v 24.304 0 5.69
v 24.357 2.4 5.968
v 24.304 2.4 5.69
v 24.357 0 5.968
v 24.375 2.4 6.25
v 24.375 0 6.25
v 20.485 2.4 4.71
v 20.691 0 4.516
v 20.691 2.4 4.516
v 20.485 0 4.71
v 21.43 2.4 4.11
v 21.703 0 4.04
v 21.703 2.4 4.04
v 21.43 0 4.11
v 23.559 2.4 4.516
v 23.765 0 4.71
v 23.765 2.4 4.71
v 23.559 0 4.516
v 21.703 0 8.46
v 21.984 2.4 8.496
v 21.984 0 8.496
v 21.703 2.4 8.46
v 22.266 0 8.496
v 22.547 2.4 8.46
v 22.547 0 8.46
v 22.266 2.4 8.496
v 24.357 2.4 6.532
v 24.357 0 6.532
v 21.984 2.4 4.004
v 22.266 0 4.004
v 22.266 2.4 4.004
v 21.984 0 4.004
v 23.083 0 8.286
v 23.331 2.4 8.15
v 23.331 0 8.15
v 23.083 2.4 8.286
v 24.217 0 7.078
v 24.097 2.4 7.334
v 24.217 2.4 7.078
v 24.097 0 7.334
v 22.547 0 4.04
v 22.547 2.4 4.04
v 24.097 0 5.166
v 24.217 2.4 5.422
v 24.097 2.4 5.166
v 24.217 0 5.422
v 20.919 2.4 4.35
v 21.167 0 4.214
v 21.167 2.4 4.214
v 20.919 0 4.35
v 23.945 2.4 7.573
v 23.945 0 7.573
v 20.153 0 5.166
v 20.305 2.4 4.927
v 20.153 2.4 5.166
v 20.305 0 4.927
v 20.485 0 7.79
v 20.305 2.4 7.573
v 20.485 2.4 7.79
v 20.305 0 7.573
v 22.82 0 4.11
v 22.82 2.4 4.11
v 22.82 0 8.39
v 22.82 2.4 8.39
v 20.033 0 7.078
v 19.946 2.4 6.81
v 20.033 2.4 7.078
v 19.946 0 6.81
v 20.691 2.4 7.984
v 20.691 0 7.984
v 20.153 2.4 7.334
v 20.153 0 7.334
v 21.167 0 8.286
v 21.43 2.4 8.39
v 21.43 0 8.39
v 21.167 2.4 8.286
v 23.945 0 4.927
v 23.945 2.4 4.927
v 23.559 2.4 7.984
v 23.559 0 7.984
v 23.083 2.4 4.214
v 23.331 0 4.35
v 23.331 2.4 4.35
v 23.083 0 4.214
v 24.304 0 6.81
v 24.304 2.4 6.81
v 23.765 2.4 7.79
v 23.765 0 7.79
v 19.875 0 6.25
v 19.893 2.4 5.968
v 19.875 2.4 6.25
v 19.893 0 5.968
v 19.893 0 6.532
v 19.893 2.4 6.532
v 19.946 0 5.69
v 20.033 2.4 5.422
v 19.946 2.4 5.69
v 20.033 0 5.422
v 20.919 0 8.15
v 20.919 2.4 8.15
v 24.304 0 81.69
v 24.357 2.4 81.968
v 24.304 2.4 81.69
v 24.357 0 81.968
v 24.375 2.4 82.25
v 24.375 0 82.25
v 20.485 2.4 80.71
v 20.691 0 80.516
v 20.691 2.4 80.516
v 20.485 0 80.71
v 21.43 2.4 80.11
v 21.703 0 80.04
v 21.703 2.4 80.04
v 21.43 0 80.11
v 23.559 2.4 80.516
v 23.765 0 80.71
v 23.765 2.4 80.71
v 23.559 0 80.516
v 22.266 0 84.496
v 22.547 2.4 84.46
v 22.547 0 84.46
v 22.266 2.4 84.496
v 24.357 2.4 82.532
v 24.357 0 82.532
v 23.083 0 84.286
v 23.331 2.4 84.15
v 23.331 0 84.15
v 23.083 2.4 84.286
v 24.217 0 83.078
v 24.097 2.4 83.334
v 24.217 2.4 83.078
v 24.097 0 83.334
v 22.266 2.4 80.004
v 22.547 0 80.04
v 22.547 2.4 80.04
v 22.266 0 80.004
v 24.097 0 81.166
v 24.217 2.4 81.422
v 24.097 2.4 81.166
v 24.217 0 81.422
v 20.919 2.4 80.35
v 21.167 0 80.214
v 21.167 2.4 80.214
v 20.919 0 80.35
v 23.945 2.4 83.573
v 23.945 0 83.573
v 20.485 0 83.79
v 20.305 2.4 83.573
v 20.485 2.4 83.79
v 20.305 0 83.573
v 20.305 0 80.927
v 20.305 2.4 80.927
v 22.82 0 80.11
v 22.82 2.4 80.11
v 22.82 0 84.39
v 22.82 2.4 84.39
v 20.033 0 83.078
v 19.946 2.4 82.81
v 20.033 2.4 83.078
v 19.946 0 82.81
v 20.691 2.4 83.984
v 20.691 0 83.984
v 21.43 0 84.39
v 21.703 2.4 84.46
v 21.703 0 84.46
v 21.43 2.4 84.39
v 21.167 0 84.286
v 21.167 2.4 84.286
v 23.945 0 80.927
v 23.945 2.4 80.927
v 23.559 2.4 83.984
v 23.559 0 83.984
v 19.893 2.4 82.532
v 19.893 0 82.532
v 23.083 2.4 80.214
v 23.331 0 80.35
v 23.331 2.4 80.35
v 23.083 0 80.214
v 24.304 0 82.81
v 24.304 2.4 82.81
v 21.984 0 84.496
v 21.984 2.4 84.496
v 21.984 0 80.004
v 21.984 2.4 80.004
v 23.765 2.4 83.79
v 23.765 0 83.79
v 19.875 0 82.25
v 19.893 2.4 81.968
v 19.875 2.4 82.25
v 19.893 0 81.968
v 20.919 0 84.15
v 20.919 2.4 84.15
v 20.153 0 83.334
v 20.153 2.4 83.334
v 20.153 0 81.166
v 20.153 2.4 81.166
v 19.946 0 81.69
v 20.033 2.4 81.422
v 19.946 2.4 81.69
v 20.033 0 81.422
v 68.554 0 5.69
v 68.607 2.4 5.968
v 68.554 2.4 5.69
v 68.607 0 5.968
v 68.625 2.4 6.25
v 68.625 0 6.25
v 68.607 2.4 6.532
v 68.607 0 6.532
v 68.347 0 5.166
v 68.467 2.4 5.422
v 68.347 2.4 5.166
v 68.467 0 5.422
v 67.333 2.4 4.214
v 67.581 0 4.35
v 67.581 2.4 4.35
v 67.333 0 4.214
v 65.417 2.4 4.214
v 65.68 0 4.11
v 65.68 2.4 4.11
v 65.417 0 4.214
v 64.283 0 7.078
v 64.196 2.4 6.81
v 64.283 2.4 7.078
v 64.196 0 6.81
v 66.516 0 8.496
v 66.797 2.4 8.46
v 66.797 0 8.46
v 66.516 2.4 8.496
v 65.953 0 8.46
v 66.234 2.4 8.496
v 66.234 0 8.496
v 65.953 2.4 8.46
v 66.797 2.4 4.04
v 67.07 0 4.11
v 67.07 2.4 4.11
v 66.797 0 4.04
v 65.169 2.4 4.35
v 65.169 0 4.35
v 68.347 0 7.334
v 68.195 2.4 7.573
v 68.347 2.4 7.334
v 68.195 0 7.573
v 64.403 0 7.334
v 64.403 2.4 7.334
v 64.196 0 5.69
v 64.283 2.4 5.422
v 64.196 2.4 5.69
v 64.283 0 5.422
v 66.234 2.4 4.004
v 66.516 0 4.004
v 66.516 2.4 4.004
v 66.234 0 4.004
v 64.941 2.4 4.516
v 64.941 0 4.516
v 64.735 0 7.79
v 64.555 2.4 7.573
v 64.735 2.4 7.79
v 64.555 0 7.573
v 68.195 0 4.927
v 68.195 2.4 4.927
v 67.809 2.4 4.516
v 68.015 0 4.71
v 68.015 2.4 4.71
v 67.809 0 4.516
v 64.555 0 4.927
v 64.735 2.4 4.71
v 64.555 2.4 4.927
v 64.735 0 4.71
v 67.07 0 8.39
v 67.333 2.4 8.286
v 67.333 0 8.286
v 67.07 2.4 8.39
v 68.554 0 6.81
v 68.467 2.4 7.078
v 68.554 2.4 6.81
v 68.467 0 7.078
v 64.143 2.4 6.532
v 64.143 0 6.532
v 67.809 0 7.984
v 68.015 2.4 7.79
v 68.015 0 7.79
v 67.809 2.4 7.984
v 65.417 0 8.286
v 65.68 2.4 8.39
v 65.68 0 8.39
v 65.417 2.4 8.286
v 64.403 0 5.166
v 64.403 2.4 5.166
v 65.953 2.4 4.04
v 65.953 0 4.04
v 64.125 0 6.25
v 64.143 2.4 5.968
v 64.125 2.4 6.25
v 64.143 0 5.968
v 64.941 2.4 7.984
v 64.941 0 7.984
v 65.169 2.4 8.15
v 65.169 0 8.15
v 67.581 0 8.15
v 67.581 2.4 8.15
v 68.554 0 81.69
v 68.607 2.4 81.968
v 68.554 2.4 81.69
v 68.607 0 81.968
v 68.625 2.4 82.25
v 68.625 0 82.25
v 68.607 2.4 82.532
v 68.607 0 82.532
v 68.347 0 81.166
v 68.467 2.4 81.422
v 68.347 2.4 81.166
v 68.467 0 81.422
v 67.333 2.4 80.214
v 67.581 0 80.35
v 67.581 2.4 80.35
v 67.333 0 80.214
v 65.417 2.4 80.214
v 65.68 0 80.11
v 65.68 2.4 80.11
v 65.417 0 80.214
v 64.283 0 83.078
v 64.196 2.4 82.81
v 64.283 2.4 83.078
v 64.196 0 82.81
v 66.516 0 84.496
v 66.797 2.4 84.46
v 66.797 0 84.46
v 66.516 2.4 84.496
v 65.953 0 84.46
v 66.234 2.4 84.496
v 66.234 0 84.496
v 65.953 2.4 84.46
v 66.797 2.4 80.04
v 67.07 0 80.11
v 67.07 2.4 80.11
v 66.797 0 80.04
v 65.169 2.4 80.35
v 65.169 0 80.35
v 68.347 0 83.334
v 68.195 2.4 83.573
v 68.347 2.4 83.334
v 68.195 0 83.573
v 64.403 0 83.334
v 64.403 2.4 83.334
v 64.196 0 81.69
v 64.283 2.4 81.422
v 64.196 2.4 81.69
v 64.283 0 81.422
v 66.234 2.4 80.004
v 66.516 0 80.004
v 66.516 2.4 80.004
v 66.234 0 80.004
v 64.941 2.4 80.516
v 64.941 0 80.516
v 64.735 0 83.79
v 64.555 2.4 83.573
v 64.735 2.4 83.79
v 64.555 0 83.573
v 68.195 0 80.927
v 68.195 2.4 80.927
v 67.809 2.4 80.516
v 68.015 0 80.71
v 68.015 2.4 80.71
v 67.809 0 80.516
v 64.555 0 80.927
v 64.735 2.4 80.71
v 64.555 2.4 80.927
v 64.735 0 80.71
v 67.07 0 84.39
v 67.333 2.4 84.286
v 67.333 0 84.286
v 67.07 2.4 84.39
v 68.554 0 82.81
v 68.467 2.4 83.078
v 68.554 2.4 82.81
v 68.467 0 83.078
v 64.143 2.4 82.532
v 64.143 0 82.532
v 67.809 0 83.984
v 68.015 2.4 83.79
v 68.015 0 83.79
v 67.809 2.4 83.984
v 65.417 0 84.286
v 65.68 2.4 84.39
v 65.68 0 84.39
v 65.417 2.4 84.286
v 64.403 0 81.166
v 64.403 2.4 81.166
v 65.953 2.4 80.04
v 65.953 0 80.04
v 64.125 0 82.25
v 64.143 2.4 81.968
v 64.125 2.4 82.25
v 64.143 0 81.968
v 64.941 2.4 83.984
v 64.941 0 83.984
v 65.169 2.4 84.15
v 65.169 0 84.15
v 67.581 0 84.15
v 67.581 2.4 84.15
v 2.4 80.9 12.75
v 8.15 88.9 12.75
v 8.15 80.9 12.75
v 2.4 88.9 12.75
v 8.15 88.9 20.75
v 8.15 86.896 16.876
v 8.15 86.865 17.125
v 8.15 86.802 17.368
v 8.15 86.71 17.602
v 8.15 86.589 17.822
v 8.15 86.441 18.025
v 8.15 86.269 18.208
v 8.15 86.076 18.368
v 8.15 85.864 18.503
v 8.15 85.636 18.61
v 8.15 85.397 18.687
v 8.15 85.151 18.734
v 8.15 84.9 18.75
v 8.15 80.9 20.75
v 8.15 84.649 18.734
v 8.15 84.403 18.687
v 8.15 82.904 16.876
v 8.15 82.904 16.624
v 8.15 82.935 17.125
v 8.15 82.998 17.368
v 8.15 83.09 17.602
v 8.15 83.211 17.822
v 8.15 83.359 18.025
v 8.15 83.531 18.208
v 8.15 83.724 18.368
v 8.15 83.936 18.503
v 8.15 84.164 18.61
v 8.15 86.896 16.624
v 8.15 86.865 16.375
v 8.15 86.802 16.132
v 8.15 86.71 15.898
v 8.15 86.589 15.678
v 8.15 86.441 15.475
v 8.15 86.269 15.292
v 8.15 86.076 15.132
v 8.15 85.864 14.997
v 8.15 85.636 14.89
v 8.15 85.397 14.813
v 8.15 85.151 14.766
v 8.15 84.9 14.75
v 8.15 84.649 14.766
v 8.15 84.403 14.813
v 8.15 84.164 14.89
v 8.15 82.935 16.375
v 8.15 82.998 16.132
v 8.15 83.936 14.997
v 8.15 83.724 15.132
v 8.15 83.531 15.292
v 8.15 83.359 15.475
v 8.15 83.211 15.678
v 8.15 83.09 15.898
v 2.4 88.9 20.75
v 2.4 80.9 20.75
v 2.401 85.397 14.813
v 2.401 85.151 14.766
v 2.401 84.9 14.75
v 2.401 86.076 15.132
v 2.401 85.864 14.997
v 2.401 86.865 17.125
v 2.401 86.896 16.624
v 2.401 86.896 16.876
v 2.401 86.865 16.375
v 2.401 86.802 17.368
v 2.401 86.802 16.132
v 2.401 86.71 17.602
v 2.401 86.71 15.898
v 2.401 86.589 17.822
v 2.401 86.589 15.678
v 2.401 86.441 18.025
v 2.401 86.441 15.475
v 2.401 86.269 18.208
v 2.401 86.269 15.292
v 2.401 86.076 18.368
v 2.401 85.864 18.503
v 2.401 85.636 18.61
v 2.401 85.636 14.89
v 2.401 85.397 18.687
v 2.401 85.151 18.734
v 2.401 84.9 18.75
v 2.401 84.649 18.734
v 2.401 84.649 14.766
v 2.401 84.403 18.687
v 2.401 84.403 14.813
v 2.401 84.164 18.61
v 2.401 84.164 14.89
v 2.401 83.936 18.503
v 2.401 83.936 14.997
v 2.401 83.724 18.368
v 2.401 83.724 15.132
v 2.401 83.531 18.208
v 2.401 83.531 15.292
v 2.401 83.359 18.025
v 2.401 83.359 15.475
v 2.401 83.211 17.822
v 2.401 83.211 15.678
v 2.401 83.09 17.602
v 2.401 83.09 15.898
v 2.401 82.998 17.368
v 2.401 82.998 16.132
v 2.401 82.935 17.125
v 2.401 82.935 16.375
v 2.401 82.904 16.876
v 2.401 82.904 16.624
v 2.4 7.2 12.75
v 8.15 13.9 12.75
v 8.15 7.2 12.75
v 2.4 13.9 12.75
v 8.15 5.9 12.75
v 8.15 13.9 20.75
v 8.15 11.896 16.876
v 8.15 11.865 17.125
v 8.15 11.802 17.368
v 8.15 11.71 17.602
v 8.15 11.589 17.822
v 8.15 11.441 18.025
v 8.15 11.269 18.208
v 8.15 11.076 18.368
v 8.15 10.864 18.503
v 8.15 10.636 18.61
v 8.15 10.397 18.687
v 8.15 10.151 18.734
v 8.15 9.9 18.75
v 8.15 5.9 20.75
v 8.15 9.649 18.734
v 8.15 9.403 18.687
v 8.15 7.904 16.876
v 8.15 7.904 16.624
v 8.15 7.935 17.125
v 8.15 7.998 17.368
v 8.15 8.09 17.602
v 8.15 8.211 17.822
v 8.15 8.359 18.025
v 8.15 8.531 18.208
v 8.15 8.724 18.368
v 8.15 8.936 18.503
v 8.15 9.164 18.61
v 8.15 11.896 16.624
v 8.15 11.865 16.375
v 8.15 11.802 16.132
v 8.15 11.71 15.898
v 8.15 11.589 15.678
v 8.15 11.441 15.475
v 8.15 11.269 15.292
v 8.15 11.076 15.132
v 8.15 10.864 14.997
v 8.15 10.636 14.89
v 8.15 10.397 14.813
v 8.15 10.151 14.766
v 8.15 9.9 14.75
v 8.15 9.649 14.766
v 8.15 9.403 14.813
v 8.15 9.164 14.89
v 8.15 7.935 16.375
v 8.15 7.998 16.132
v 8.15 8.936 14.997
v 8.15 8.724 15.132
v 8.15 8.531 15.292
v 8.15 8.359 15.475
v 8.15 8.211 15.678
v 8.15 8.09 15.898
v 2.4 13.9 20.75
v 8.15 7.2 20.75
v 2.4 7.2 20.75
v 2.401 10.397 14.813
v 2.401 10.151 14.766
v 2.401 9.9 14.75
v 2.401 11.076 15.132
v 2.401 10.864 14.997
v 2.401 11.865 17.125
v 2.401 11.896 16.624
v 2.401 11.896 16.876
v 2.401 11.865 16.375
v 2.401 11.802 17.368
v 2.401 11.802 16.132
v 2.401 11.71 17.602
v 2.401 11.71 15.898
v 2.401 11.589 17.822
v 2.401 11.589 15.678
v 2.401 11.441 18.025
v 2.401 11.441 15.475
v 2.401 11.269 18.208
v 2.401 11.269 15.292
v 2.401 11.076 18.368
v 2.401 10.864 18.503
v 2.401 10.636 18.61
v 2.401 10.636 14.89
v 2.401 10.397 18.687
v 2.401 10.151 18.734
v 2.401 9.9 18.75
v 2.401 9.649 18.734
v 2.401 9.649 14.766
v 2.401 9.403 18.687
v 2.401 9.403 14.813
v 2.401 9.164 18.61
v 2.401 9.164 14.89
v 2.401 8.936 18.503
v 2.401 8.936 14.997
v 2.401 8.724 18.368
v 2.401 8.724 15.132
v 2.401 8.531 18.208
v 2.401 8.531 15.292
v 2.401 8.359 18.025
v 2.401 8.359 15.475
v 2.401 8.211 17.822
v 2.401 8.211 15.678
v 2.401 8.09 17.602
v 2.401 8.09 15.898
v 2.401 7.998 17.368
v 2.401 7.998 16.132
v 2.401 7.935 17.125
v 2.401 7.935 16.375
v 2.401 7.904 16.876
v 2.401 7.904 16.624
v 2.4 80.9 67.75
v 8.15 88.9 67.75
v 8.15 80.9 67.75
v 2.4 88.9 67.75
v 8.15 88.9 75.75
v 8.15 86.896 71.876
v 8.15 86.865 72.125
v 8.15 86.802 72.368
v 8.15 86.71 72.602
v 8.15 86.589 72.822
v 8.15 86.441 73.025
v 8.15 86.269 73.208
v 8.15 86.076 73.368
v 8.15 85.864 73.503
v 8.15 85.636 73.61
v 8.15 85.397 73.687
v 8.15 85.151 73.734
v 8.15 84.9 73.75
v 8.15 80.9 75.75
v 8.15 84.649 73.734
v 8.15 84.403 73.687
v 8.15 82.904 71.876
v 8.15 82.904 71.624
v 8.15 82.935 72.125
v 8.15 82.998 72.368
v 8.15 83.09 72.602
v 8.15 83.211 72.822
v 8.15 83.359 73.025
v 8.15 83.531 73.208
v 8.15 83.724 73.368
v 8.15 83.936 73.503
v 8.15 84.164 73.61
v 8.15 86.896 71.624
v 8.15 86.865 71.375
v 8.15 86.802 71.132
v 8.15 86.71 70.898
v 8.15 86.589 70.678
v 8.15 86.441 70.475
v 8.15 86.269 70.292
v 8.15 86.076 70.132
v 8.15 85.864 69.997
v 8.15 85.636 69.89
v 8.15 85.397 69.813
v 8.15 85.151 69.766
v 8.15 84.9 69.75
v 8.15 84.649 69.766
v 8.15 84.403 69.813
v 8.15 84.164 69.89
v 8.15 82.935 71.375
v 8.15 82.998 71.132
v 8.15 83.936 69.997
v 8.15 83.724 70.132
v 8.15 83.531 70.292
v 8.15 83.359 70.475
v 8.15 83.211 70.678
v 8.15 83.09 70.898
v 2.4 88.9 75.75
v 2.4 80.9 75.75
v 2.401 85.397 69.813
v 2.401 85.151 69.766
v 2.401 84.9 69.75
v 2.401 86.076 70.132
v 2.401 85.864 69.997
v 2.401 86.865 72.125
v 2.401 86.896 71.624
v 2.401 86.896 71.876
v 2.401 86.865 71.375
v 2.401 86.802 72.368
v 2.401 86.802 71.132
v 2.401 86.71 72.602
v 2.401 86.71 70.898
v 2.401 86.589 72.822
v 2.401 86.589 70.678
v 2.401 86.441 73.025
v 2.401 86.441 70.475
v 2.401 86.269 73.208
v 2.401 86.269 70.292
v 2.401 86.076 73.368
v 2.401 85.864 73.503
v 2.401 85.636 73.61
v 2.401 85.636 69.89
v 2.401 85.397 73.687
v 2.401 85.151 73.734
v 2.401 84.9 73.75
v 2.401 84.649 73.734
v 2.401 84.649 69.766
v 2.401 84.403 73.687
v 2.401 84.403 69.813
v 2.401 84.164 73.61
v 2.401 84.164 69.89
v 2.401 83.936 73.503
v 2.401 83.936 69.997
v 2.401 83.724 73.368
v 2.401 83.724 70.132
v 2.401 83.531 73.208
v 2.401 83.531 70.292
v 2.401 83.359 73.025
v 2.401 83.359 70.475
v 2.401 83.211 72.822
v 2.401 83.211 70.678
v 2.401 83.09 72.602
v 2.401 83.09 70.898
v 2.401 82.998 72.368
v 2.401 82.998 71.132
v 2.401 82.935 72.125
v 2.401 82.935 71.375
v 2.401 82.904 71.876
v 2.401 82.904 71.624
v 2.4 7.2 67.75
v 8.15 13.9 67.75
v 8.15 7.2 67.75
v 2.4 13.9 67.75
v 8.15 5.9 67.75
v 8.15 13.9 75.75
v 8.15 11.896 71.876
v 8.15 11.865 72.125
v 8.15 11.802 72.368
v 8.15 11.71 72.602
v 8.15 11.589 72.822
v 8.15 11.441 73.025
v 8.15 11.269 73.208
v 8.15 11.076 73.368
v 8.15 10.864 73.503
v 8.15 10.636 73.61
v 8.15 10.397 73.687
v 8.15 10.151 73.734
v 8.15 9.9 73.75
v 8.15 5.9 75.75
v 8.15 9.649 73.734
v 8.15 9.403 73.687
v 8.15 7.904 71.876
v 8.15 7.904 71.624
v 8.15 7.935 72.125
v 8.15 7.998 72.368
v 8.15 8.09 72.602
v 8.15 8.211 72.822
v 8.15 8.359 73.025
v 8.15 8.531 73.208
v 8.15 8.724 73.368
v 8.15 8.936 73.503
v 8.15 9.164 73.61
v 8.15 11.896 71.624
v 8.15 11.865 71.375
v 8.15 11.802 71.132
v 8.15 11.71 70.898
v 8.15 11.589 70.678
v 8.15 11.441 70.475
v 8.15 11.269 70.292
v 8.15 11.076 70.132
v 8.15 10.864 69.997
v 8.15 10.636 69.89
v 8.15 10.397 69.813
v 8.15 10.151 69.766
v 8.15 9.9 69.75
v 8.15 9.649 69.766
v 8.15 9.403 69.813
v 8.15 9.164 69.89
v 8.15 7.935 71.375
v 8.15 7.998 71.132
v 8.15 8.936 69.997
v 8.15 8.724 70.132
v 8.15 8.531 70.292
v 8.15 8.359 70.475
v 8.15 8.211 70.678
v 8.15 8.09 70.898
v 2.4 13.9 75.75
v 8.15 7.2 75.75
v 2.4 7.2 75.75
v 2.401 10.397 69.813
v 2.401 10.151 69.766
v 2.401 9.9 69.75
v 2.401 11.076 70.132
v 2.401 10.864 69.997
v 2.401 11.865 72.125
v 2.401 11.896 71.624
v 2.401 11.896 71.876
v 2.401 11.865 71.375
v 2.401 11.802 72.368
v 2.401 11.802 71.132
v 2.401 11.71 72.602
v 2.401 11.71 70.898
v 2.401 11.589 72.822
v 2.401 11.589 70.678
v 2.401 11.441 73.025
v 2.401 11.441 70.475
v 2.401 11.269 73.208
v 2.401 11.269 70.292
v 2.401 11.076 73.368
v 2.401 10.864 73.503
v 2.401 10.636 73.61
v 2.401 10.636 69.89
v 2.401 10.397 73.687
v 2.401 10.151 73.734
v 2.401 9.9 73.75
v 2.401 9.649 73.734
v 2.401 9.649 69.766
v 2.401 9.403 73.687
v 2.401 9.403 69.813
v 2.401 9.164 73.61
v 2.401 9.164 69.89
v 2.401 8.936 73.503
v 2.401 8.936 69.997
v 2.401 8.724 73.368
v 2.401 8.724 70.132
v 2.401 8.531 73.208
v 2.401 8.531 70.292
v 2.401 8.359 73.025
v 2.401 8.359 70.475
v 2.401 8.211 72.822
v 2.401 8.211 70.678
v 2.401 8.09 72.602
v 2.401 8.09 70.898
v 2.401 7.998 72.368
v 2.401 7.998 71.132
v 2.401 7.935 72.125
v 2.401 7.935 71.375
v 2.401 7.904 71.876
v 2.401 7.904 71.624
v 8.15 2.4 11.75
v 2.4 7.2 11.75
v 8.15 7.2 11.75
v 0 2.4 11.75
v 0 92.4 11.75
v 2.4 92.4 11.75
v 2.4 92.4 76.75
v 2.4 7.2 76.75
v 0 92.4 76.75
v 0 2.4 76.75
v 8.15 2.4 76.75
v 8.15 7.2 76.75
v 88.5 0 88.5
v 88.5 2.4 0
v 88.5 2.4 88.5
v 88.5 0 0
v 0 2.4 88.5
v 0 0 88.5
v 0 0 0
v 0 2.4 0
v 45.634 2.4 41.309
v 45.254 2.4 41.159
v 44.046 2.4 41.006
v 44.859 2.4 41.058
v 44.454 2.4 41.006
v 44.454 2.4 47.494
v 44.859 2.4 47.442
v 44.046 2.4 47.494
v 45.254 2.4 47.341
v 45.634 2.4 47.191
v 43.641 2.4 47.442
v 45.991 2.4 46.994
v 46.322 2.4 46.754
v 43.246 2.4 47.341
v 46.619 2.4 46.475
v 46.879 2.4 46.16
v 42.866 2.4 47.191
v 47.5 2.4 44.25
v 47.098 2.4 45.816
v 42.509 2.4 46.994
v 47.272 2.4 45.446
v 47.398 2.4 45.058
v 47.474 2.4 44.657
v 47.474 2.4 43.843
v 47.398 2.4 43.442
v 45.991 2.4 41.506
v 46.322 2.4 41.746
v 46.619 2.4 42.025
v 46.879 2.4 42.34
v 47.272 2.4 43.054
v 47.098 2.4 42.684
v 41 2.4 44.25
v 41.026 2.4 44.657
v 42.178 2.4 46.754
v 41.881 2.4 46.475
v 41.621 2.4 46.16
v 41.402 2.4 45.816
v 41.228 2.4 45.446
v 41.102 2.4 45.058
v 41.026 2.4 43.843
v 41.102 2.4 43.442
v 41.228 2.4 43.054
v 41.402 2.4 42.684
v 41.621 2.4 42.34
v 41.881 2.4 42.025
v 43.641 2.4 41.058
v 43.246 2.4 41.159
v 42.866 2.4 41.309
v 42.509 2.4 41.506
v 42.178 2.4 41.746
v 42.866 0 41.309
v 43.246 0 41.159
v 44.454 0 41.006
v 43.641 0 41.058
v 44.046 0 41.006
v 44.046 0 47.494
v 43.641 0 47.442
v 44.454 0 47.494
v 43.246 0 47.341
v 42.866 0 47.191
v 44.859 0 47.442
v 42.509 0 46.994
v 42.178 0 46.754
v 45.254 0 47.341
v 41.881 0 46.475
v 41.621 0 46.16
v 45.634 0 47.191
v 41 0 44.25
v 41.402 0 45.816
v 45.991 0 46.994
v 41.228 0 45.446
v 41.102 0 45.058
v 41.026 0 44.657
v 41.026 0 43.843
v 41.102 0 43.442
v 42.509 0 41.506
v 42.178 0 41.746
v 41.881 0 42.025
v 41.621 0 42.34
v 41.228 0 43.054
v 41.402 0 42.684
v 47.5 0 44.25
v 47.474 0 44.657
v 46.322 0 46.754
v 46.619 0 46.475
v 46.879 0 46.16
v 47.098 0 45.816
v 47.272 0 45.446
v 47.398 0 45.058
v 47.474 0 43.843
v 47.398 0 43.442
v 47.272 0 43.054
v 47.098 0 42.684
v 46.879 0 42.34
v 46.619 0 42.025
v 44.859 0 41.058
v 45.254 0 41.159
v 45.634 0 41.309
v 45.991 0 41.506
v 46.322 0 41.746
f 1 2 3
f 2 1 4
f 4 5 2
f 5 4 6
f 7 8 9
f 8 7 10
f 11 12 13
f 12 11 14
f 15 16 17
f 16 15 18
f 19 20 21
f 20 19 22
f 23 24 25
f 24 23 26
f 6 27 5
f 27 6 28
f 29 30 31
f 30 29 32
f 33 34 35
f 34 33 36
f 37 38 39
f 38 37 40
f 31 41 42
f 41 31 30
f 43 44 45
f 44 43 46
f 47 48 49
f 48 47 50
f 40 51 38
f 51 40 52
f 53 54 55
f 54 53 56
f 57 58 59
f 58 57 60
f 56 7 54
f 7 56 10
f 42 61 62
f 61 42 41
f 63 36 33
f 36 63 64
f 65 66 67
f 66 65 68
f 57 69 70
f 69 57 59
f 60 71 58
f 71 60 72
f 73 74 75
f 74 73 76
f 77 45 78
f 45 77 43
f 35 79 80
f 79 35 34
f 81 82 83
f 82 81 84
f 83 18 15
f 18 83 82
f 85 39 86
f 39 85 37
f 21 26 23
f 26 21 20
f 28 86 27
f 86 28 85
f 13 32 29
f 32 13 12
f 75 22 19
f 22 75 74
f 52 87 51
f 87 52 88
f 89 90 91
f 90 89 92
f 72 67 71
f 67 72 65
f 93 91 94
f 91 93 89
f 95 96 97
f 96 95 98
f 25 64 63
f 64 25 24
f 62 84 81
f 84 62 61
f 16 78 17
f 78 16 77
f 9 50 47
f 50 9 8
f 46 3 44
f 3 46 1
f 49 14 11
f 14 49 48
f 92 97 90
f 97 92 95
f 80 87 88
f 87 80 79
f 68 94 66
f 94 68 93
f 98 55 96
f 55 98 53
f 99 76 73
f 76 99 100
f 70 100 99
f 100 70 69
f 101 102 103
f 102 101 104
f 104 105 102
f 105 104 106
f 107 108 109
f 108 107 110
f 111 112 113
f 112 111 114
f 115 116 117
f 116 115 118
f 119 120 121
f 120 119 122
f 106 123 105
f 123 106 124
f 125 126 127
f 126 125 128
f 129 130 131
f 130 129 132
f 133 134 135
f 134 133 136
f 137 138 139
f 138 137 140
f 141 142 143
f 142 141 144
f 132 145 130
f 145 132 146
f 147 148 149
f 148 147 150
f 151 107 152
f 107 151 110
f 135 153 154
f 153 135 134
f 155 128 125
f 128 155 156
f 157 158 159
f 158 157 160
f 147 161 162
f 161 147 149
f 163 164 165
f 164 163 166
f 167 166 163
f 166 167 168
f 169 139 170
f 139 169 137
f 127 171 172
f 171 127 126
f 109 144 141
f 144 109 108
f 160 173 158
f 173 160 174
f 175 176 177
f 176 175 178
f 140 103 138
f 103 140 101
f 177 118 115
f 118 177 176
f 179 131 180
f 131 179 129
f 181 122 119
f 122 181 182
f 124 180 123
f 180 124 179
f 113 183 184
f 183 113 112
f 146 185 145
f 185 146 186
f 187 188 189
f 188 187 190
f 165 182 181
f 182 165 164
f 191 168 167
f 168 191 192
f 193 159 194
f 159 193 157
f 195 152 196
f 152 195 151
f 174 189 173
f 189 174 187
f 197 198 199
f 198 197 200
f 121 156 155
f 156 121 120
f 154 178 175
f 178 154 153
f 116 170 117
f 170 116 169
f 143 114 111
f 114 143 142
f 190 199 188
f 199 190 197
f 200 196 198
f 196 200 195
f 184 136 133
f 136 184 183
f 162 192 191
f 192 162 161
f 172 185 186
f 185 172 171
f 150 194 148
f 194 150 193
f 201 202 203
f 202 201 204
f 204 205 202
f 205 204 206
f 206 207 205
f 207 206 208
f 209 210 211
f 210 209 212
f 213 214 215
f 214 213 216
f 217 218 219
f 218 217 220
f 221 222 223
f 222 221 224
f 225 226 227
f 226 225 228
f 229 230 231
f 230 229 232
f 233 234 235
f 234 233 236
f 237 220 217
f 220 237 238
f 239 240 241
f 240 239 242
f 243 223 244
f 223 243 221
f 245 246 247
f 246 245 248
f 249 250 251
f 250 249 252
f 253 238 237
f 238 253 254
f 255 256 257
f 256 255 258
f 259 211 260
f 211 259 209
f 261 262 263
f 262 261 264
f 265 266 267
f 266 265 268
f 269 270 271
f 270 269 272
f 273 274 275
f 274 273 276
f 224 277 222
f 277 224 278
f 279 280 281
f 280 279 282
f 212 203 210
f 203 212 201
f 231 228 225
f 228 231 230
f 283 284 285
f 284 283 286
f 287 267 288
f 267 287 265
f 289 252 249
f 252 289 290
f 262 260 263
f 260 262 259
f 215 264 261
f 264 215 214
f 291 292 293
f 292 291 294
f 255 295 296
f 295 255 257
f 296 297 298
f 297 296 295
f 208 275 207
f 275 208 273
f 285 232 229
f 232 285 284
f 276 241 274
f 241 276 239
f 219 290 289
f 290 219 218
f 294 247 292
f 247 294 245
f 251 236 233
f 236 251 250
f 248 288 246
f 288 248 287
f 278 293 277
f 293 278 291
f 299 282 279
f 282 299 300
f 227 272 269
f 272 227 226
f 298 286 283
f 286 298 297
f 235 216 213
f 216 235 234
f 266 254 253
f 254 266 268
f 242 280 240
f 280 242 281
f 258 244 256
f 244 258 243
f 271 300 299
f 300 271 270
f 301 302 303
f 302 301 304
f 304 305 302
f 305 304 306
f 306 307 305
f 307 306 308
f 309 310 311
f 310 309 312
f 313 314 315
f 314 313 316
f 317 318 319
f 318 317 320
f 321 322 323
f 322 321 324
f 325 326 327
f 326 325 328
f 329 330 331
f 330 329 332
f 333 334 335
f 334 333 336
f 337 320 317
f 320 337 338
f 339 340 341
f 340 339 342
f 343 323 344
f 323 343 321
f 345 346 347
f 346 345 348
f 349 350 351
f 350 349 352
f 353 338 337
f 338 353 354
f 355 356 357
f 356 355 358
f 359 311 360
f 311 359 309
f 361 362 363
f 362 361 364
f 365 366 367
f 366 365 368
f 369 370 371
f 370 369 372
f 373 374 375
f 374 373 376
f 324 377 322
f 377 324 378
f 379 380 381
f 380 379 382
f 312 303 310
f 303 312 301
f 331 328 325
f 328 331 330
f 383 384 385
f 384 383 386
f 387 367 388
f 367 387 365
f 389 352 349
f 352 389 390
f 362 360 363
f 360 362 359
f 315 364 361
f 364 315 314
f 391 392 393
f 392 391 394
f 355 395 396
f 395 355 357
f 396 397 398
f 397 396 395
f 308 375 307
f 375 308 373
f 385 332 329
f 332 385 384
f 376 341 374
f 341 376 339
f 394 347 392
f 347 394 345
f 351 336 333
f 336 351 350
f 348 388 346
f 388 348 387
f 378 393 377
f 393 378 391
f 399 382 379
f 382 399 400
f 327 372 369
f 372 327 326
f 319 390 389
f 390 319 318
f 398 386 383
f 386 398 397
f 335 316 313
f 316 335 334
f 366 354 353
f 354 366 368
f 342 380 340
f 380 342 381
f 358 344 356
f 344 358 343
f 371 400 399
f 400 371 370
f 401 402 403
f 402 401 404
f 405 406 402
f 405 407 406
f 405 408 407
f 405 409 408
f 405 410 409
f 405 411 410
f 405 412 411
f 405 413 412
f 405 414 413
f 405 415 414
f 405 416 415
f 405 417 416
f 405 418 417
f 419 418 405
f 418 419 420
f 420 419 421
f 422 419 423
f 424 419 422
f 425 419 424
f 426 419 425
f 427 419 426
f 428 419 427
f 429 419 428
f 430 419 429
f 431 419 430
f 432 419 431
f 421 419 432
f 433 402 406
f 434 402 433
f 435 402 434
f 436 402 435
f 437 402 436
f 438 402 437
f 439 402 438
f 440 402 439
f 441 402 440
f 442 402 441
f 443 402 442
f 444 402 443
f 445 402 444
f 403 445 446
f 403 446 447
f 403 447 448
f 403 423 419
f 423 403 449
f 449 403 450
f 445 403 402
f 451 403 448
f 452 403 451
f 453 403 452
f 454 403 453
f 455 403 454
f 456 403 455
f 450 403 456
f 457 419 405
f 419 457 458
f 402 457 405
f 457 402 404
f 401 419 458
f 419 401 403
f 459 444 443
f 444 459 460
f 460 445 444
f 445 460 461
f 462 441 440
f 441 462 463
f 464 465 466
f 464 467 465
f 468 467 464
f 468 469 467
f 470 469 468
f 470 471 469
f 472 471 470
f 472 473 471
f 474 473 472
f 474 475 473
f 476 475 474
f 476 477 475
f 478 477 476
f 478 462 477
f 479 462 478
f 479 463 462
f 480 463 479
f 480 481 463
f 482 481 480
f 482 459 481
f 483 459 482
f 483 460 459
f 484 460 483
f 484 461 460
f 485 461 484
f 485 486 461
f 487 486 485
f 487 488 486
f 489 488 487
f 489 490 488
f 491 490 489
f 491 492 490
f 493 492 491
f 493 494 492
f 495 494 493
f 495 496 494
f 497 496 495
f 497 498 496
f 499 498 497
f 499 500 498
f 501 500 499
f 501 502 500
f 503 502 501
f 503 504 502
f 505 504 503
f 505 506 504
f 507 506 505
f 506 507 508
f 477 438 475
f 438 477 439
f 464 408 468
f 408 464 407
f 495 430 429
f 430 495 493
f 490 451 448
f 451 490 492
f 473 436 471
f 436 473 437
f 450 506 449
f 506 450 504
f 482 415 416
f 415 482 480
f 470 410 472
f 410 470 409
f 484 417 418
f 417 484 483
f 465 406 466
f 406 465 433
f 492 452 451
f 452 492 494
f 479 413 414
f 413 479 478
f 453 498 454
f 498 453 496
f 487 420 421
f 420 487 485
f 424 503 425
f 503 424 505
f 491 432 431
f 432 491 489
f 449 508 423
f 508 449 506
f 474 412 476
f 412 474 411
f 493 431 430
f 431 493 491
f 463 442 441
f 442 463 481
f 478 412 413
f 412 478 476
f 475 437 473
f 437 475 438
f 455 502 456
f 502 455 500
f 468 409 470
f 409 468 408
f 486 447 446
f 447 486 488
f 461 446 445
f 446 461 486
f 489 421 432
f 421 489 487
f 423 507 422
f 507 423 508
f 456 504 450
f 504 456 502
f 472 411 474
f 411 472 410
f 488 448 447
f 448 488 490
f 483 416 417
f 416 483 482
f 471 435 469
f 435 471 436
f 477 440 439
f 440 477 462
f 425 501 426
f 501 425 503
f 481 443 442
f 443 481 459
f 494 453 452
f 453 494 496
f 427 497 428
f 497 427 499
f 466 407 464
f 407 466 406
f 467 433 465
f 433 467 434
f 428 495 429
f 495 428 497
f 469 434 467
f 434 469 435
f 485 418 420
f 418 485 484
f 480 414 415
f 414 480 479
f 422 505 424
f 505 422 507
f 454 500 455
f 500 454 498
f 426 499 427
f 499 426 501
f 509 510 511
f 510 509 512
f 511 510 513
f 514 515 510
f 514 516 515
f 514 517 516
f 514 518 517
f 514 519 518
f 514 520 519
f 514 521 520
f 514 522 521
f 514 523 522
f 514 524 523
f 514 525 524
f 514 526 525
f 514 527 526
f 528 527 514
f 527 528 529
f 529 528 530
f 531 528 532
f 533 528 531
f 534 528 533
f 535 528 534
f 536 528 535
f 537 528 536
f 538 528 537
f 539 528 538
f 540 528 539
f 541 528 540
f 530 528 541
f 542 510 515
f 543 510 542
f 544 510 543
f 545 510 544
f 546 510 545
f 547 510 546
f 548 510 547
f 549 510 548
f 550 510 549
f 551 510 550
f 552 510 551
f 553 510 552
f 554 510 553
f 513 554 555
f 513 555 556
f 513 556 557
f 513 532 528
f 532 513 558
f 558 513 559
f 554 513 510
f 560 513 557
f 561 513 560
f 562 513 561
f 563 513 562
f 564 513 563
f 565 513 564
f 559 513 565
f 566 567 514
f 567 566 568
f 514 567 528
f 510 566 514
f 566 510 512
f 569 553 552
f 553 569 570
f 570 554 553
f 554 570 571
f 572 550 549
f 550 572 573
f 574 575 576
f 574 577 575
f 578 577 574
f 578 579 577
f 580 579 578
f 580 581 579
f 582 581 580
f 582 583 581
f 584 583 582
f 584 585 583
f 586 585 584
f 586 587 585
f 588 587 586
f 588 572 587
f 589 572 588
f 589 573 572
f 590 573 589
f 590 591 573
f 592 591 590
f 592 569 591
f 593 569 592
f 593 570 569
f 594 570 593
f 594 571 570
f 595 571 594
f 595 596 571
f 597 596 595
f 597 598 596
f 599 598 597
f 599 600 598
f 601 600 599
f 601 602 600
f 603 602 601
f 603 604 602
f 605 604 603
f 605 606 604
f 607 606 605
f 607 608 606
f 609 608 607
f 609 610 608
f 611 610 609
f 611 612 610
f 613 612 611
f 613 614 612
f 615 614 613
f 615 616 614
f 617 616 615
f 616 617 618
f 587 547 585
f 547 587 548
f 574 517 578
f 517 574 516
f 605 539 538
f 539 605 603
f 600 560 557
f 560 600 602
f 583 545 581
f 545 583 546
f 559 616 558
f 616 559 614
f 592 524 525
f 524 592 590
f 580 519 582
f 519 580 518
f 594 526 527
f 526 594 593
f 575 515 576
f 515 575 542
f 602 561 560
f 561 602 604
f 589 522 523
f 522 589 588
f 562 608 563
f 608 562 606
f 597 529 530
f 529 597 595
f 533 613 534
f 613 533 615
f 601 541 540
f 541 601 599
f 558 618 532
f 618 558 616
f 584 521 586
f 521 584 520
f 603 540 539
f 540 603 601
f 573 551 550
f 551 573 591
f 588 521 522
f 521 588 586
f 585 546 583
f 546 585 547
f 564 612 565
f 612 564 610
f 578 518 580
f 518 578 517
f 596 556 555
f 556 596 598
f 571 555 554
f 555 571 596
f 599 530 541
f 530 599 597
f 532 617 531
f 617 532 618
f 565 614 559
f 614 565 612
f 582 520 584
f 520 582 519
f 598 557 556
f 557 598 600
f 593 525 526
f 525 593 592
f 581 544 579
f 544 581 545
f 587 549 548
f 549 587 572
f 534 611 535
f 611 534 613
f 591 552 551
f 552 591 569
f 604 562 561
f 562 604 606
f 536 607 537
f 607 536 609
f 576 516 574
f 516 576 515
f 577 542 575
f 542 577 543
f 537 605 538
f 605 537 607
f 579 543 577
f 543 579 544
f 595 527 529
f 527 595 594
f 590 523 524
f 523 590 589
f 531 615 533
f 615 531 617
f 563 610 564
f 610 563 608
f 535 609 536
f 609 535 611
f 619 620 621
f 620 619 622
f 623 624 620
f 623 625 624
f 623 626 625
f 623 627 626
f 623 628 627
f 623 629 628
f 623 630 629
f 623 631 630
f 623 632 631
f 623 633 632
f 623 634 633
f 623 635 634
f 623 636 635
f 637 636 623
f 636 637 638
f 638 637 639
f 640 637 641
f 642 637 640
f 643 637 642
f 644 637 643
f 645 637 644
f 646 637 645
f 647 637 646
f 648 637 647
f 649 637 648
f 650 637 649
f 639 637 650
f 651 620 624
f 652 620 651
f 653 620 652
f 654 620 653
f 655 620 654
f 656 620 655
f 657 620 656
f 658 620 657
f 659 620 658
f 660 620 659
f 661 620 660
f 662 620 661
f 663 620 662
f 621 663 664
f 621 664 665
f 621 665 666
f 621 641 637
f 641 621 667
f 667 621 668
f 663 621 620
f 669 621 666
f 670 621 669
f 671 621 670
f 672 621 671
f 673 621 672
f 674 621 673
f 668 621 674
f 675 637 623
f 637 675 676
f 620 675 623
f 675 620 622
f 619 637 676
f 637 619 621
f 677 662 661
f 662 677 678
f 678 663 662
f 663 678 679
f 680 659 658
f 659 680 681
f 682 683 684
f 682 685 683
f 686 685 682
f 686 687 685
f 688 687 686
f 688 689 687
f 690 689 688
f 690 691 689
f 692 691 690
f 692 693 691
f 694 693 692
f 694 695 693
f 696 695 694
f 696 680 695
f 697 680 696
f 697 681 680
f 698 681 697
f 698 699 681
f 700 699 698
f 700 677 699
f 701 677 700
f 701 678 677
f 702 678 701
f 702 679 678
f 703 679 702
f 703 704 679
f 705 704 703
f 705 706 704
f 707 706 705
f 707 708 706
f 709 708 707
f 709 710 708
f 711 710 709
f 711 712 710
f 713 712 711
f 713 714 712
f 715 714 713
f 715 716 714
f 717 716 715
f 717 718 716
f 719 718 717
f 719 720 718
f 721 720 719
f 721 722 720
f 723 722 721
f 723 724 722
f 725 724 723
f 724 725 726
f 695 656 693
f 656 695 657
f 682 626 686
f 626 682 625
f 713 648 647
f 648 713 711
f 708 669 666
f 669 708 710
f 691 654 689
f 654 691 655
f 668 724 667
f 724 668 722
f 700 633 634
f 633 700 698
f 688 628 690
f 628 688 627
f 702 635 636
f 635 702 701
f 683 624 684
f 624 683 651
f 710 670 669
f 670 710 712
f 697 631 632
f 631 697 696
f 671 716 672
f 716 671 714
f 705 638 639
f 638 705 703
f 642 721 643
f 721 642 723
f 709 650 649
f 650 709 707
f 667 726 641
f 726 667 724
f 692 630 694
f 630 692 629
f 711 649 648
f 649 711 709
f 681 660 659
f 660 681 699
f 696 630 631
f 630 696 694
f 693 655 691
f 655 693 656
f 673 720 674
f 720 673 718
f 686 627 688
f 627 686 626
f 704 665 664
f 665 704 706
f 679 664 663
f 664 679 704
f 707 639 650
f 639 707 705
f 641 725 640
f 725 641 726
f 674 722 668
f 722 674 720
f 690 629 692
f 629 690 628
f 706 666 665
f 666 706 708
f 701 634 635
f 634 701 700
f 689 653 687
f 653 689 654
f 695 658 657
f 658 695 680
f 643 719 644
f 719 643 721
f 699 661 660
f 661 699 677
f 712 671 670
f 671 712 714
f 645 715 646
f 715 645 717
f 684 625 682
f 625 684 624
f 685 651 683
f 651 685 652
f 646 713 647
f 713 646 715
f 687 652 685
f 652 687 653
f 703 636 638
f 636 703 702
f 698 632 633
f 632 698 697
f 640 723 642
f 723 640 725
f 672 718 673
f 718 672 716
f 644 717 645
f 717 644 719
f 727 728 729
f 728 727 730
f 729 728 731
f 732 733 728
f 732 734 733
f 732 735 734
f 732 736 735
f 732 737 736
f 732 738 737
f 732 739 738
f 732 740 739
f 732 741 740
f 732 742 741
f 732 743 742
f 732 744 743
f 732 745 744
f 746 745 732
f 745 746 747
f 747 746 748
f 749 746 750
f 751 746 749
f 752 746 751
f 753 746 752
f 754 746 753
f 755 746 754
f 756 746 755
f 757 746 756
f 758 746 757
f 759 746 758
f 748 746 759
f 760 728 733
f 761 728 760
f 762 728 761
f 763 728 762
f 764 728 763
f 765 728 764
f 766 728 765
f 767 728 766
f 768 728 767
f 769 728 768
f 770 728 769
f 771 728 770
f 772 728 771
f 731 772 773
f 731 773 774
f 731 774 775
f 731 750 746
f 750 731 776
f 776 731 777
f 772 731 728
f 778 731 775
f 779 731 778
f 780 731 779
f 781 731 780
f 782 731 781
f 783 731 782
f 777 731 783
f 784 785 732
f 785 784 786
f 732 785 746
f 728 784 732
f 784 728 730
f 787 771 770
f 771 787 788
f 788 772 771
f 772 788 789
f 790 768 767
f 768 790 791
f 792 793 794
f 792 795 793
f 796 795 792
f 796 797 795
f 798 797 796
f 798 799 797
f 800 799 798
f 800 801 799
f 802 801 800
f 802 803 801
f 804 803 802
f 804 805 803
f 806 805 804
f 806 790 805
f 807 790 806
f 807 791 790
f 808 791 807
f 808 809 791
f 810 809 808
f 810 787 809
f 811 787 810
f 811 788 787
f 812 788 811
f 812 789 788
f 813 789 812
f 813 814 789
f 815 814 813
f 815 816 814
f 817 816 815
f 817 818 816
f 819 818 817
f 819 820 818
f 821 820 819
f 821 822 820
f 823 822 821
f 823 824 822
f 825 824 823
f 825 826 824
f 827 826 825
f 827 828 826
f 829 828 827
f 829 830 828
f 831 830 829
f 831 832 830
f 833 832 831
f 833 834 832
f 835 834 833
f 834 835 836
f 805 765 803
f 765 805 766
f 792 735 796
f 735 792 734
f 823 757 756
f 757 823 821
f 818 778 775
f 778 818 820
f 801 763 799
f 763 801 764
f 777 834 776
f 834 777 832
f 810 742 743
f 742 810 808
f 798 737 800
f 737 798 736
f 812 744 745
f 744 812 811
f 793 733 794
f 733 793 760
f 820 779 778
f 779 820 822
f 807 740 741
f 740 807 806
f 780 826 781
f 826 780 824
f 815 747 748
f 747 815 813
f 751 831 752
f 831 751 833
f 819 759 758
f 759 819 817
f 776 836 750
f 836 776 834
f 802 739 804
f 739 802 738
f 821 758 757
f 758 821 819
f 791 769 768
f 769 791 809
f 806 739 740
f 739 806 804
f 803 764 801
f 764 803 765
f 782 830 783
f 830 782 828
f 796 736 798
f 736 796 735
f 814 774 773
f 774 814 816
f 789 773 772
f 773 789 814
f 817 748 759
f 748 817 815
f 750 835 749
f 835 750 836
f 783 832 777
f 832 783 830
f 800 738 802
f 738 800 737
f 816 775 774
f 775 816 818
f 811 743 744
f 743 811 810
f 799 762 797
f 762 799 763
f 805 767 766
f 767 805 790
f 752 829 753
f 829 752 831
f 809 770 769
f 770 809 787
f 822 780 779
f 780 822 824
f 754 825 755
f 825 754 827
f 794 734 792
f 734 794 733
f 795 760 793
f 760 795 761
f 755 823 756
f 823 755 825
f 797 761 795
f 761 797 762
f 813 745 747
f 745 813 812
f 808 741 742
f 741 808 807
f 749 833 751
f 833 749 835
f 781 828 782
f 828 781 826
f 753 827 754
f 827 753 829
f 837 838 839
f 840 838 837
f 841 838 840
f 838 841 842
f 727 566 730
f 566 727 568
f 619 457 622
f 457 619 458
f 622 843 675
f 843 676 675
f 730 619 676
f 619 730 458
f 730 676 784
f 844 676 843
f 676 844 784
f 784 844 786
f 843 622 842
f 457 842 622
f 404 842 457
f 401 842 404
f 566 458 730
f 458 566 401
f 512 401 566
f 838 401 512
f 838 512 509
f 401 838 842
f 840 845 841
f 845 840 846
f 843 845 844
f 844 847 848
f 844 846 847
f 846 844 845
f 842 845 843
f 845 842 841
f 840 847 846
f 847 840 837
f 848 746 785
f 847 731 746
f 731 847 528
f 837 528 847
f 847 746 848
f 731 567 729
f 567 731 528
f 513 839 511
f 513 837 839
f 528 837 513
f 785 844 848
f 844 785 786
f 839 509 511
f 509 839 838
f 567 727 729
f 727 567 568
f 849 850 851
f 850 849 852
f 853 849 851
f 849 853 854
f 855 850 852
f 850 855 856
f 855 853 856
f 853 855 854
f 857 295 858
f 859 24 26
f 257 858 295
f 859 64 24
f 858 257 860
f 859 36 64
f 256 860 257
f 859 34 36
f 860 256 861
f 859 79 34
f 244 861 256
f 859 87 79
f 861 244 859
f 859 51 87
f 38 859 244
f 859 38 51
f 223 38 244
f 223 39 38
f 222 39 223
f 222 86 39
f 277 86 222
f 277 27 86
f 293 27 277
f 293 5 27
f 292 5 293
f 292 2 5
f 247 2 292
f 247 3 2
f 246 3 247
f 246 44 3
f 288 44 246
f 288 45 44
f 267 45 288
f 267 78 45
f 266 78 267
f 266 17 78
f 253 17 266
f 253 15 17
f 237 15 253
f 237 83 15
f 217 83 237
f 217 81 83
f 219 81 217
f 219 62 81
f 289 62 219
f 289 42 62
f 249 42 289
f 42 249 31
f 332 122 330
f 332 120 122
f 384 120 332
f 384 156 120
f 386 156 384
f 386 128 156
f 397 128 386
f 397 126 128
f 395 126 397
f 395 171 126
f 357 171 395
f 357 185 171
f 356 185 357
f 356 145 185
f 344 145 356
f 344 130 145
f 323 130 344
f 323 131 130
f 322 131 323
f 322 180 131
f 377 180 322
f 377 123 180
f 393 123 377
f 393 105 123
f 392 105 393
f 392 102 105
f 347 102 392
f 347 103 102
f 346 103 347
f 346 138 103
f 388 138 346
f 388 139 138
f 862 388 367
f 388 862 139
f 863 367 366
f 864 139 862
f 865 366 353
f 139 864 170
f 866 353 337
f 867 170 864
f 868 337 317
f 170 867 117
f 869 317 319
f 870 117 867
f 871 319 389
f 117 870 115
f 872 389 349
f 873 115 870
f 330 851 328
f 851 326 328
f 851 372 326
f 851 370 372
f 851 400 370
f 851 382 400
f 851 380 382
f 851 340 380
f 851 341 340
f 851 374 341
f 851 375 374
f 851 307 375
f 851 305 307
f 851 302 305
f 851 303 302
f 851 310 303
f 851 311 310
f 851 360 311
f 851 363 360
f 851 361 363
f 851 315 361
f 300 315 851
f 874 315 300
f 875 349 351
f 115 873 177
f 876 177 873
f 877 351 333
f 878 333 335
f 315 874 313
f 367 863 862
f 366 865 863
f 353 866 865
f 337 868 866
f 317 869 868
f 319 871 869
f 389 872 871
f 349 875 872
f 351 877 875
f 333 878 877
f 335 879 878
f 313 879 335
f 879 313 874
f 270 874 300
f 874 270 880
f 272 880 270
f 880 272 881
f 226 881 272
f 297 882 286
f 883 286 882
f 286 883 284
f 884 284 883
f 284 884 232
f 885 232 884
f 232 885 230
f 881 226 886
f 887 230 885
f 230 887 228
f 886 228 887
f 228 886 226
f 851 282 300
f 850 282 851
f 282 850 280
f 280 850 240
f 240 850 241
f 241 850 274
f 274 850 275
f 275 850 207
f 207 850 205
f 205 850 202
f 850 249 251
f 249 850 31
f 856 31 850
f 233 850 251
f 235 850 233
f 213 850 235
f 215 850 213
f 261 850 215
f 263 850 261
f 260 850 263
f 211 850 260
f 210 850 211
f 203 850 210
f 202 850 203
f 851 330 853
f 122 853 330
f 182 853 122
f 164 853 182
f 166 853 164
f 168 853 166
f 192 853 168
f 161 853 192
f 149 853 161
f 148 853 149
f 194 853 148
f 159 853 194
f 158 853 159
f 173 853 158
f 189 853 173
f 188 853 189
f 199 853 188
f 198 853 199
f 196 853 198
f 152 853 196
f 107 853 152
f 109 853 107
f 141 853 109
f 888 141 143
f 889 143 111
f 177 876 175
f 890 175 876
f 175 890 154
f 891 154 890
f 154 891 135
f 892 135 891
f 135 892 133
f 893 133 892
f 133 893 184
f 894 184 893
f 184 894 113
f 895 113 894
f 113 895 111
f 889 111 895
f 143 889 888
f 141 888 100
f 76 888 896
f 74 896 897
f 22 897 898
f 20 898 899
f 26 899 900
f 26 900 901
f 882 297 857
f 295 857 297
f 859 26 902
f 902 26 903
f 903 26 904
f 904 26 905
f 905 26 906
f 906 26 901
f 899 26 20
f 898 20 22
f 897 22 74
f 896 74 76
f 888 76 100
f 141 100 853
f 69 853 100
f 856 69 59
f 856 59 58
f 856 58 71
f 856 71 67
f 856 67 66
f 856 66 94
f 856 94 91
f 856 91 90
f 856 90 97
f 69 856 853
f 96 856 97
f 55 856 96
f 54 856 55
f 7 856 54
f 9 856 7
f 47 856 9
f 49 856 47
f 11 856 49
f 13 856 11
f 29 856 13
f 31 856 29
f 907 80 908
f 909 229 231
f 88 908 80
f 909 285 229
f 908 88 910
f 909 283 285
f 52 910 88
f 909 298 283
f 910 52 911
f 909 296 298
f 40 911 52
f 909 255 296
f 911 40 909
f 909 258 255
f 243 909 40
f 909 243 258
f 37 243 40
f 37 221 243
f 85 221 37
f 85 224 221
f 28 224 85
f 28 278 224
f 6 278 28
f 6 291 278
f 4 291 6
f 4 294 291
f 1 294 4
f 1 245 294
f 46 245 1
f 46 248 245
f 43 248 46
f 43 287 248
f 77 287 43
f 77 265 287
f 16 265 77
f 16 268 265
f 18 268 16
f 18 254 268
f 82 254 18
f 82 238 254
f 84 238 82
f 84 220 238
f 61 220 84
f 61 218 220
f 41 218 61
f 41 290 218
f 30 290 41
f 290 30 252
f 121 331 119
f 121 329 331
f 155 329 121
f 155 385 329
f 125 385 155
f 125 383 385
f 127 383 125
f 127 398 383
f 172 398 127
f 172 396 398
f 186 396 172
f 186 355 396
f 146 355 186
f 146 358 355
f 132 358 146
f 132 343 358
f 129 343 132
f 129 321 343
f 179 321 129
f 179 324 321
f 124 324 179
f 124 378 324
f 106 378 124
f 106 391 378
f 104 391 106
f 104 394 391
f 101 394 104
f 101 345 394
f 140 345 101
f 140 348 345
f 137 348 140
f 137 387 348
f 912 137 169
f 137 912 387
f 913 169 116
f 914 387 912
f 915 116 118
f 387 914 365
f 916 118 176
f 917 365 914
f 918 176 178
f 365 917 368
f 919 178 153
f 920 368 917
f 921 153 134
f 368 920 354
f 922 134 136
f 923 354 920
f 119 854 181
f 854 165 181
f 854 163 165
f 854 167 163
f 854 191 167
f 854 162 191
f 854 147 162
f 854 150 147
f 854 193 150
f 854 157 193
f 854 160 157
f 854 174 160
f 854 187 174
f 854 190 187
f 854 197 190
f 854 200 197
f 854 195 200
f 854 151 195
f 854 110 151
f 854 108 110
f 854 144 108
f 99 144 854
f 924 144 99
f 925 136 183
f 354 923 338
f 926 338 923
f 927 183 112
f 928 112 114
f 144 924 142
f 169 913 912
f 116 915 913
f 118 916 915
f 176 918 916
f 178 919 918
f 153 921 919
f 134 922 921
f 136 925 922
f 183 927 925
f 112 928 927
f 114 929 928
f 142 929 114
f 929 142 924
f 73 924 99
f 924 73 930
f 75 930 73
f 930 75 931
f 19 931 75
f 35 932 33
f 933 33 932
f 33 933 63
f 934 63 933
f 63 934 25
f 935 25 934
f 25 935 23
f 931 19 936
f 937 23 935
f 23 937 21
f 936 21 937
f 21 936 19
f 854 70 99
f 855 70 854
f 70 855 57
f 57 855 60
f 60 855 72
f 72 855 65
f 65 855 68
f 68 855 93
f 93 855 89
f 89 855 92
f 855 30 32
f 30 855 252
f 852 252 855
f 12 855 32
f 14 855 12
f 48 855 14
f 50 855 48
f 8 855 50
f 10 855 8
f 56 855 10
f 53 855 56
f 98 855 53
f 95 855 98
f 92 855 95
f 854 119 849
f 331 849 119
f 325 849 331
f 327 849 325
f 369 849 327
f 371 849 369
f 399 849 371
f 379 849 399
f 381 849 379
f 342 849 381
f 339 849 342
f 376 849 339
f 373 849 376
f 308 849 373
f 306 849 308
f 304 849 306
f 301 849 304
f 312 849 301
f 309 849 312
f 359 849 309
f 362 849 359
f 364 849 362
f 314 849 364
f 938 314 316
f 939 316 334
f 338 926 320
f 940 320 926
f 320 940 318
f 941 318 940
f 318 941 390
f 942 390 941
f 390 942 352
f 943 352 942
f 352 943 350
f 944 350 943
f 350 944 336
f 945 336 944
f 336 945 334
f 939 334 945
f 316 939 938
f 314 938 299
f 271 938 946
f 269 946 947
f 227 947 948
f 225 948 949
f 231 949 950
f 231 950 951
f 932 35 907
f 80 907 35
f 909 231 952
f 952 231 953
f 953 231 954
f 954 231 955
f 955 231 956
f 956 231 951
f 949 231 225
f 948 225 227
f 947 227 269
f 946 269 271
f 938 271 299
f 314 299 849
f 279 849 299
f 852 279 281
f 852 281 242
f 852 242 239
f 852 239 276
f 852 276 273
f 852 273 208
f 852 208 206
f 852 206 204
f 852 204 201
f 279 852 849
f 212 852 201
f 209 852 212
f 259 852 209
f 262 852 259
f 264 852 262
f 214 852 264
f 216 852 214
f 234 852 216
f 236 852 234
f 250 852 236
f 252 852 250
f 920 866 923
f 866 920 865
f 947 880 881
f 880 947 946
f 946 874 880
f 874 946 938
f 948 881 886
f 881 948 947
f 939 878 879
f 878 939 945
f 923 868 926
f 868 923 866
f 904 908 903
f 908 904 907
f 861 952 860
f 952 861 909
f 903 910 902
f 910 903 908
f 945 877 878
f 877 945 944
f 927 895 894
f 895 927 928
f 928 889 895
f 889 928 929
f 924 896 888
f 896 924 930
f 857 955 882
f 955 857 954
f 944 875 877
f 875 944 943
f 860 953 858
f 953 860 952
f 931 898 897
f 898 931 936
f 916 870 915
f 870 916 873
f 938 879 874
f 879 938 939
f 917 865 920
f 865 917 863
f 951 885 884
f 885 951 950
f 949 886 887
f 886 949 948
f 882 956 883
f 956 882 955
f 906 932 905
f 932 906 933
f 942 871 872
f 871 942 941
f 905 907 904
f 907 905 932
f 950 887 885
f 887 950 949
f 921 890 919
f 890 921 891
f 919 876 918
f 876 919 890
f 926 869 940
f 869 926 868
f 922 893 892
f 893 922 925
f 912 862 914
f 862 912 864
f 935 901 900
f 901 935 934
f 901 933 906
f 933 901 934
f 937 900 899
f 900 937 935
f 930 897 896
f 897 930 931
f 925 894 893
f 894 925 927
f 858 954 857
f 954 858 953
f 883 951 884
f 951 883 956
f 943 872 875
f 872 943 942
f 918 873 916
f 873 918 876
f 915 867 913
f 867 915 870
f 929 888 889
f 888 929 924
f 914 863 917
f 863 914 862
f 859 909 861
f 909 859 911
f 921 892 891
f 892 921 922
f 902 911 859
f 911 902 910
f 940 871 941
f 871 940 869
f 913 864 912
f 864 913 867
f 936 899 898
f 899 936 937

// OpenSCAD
// file: variables.scad
$fn = 50;

plate_width = 88.5;
plate_height = 88.5;
plate_thickness = 2.4;

hole_distance = plate_width / 2;
hole_side_distance = hole_distance / 2;
hole_height_distance = 76;
hole_z = (plate_height - hole_height_distance) / 2;

hole_diameter = 4.5;

back_ear_height = 65;
back_ear_depth = 90;
back_ear_z = (plate_height - back_ear_height) / 2;
back_ear_x = 0;

switch_hole_diameter = 6.5;

pcb_m3_hole_distance_width = 75;
pcb_m3_hole_distance_depth = 55;

m3_insert_hole_diameter = 4;
m3_insert_hole_depth = 5.75;
m3_insert_outer = m3_insert_hole_diameter + 4;

module
m3_pillar()
{
    translate([ -m3_insert_outer / 2, -m3_insert_outer / 2, -plate_thickness ])
        cube([ m3_insert_outer, m3_insert_outer, plate_thickness ]);
    difference()
    {
        translate([ -m3_insert_outer / 2, -m3_insert_outer / 2, 0 ])
            cube([ m3_insert_outer, m3_insert_outer, m3_insert_hole_depth ]);
        translate([ 0, 0, 0.001 ])
            cylinder(h = m3_insert_hole_depth, d = m3_insert_hole_diameter);
    }
}
// main file
include <variables.scad>

union()
{
    difference()
    {
        cube([ plate_width, plate_thickness, plate_height ]);
        translate([ hole_side_distance, -1, hole_z ])
        {
            rotate([ -90, 0, 0 ])
                cylinder(h = 2 * plate_thickness, d = hole_diameter);
            translate([ 0, 0, hole_height_distance ]) rotate([ -90, 0, 0 ])
                cylinder(h = 2 * plate_thickness, d = hole_diameter);
        }
        translate([ plate_width - hole_side_distance, -1, hole_z ])
        {
            rotate([ -90, 0, 0 ])
                cylinder(h = 2 * plate_thickness, d = hole_diameter);
            translate([ 0, 0, hole_height_distance ]) rotate([ -90, 0, 0 ])
                cylinder(h = 2 * plate_thickness, d = hole_diameter);
        }

        translate([ plate_width / 2, -1, plate_height / 2 ])
            rotate([ -90, 0, 0 ])
                cylinder(h = 2 * plate_thickness, d = switch_hole_diameter);
    }

    translate([ 0, plate_thickness, back_ear_height + back_ear_z ])
        rotate([ 0, 90, 0 ])
    {
        cube([ back_ear_height, back_ear_depth, plate_thickness ]);
        translate([ 0, 0, plate_thickness ]) cube(
            [ back_ear_height, plate_thickness * 2, m3_insert_hole_depth ]);

        translate([ back_ear_height / 2, back_ear_depth / 2, plate_thickness ])
        {
            translate([
                pcb_m3_hole_distance_depth / 2,
                pcb_m3_hole_distance_width / 2,
                0
            ]) m3_pillar();
            translate([
                pcb_m3_hole_distance_depth / 2,
                -pcb_m3_hole_distance_width / 2,
                0
            ]) m3_pillar();
            translate([
                -pcb_m3_hole_distance_depth / 2,
                pcb_m3_hole_distance_width / 2,
                0
            ]) m3_pillar();
            translate([
                -pcb_m3_hole_distance_depth / 2,
                -pcb_m3_hole_distance_width / 2,
                0
            ]) m3_pillar();
        }
    }
}
